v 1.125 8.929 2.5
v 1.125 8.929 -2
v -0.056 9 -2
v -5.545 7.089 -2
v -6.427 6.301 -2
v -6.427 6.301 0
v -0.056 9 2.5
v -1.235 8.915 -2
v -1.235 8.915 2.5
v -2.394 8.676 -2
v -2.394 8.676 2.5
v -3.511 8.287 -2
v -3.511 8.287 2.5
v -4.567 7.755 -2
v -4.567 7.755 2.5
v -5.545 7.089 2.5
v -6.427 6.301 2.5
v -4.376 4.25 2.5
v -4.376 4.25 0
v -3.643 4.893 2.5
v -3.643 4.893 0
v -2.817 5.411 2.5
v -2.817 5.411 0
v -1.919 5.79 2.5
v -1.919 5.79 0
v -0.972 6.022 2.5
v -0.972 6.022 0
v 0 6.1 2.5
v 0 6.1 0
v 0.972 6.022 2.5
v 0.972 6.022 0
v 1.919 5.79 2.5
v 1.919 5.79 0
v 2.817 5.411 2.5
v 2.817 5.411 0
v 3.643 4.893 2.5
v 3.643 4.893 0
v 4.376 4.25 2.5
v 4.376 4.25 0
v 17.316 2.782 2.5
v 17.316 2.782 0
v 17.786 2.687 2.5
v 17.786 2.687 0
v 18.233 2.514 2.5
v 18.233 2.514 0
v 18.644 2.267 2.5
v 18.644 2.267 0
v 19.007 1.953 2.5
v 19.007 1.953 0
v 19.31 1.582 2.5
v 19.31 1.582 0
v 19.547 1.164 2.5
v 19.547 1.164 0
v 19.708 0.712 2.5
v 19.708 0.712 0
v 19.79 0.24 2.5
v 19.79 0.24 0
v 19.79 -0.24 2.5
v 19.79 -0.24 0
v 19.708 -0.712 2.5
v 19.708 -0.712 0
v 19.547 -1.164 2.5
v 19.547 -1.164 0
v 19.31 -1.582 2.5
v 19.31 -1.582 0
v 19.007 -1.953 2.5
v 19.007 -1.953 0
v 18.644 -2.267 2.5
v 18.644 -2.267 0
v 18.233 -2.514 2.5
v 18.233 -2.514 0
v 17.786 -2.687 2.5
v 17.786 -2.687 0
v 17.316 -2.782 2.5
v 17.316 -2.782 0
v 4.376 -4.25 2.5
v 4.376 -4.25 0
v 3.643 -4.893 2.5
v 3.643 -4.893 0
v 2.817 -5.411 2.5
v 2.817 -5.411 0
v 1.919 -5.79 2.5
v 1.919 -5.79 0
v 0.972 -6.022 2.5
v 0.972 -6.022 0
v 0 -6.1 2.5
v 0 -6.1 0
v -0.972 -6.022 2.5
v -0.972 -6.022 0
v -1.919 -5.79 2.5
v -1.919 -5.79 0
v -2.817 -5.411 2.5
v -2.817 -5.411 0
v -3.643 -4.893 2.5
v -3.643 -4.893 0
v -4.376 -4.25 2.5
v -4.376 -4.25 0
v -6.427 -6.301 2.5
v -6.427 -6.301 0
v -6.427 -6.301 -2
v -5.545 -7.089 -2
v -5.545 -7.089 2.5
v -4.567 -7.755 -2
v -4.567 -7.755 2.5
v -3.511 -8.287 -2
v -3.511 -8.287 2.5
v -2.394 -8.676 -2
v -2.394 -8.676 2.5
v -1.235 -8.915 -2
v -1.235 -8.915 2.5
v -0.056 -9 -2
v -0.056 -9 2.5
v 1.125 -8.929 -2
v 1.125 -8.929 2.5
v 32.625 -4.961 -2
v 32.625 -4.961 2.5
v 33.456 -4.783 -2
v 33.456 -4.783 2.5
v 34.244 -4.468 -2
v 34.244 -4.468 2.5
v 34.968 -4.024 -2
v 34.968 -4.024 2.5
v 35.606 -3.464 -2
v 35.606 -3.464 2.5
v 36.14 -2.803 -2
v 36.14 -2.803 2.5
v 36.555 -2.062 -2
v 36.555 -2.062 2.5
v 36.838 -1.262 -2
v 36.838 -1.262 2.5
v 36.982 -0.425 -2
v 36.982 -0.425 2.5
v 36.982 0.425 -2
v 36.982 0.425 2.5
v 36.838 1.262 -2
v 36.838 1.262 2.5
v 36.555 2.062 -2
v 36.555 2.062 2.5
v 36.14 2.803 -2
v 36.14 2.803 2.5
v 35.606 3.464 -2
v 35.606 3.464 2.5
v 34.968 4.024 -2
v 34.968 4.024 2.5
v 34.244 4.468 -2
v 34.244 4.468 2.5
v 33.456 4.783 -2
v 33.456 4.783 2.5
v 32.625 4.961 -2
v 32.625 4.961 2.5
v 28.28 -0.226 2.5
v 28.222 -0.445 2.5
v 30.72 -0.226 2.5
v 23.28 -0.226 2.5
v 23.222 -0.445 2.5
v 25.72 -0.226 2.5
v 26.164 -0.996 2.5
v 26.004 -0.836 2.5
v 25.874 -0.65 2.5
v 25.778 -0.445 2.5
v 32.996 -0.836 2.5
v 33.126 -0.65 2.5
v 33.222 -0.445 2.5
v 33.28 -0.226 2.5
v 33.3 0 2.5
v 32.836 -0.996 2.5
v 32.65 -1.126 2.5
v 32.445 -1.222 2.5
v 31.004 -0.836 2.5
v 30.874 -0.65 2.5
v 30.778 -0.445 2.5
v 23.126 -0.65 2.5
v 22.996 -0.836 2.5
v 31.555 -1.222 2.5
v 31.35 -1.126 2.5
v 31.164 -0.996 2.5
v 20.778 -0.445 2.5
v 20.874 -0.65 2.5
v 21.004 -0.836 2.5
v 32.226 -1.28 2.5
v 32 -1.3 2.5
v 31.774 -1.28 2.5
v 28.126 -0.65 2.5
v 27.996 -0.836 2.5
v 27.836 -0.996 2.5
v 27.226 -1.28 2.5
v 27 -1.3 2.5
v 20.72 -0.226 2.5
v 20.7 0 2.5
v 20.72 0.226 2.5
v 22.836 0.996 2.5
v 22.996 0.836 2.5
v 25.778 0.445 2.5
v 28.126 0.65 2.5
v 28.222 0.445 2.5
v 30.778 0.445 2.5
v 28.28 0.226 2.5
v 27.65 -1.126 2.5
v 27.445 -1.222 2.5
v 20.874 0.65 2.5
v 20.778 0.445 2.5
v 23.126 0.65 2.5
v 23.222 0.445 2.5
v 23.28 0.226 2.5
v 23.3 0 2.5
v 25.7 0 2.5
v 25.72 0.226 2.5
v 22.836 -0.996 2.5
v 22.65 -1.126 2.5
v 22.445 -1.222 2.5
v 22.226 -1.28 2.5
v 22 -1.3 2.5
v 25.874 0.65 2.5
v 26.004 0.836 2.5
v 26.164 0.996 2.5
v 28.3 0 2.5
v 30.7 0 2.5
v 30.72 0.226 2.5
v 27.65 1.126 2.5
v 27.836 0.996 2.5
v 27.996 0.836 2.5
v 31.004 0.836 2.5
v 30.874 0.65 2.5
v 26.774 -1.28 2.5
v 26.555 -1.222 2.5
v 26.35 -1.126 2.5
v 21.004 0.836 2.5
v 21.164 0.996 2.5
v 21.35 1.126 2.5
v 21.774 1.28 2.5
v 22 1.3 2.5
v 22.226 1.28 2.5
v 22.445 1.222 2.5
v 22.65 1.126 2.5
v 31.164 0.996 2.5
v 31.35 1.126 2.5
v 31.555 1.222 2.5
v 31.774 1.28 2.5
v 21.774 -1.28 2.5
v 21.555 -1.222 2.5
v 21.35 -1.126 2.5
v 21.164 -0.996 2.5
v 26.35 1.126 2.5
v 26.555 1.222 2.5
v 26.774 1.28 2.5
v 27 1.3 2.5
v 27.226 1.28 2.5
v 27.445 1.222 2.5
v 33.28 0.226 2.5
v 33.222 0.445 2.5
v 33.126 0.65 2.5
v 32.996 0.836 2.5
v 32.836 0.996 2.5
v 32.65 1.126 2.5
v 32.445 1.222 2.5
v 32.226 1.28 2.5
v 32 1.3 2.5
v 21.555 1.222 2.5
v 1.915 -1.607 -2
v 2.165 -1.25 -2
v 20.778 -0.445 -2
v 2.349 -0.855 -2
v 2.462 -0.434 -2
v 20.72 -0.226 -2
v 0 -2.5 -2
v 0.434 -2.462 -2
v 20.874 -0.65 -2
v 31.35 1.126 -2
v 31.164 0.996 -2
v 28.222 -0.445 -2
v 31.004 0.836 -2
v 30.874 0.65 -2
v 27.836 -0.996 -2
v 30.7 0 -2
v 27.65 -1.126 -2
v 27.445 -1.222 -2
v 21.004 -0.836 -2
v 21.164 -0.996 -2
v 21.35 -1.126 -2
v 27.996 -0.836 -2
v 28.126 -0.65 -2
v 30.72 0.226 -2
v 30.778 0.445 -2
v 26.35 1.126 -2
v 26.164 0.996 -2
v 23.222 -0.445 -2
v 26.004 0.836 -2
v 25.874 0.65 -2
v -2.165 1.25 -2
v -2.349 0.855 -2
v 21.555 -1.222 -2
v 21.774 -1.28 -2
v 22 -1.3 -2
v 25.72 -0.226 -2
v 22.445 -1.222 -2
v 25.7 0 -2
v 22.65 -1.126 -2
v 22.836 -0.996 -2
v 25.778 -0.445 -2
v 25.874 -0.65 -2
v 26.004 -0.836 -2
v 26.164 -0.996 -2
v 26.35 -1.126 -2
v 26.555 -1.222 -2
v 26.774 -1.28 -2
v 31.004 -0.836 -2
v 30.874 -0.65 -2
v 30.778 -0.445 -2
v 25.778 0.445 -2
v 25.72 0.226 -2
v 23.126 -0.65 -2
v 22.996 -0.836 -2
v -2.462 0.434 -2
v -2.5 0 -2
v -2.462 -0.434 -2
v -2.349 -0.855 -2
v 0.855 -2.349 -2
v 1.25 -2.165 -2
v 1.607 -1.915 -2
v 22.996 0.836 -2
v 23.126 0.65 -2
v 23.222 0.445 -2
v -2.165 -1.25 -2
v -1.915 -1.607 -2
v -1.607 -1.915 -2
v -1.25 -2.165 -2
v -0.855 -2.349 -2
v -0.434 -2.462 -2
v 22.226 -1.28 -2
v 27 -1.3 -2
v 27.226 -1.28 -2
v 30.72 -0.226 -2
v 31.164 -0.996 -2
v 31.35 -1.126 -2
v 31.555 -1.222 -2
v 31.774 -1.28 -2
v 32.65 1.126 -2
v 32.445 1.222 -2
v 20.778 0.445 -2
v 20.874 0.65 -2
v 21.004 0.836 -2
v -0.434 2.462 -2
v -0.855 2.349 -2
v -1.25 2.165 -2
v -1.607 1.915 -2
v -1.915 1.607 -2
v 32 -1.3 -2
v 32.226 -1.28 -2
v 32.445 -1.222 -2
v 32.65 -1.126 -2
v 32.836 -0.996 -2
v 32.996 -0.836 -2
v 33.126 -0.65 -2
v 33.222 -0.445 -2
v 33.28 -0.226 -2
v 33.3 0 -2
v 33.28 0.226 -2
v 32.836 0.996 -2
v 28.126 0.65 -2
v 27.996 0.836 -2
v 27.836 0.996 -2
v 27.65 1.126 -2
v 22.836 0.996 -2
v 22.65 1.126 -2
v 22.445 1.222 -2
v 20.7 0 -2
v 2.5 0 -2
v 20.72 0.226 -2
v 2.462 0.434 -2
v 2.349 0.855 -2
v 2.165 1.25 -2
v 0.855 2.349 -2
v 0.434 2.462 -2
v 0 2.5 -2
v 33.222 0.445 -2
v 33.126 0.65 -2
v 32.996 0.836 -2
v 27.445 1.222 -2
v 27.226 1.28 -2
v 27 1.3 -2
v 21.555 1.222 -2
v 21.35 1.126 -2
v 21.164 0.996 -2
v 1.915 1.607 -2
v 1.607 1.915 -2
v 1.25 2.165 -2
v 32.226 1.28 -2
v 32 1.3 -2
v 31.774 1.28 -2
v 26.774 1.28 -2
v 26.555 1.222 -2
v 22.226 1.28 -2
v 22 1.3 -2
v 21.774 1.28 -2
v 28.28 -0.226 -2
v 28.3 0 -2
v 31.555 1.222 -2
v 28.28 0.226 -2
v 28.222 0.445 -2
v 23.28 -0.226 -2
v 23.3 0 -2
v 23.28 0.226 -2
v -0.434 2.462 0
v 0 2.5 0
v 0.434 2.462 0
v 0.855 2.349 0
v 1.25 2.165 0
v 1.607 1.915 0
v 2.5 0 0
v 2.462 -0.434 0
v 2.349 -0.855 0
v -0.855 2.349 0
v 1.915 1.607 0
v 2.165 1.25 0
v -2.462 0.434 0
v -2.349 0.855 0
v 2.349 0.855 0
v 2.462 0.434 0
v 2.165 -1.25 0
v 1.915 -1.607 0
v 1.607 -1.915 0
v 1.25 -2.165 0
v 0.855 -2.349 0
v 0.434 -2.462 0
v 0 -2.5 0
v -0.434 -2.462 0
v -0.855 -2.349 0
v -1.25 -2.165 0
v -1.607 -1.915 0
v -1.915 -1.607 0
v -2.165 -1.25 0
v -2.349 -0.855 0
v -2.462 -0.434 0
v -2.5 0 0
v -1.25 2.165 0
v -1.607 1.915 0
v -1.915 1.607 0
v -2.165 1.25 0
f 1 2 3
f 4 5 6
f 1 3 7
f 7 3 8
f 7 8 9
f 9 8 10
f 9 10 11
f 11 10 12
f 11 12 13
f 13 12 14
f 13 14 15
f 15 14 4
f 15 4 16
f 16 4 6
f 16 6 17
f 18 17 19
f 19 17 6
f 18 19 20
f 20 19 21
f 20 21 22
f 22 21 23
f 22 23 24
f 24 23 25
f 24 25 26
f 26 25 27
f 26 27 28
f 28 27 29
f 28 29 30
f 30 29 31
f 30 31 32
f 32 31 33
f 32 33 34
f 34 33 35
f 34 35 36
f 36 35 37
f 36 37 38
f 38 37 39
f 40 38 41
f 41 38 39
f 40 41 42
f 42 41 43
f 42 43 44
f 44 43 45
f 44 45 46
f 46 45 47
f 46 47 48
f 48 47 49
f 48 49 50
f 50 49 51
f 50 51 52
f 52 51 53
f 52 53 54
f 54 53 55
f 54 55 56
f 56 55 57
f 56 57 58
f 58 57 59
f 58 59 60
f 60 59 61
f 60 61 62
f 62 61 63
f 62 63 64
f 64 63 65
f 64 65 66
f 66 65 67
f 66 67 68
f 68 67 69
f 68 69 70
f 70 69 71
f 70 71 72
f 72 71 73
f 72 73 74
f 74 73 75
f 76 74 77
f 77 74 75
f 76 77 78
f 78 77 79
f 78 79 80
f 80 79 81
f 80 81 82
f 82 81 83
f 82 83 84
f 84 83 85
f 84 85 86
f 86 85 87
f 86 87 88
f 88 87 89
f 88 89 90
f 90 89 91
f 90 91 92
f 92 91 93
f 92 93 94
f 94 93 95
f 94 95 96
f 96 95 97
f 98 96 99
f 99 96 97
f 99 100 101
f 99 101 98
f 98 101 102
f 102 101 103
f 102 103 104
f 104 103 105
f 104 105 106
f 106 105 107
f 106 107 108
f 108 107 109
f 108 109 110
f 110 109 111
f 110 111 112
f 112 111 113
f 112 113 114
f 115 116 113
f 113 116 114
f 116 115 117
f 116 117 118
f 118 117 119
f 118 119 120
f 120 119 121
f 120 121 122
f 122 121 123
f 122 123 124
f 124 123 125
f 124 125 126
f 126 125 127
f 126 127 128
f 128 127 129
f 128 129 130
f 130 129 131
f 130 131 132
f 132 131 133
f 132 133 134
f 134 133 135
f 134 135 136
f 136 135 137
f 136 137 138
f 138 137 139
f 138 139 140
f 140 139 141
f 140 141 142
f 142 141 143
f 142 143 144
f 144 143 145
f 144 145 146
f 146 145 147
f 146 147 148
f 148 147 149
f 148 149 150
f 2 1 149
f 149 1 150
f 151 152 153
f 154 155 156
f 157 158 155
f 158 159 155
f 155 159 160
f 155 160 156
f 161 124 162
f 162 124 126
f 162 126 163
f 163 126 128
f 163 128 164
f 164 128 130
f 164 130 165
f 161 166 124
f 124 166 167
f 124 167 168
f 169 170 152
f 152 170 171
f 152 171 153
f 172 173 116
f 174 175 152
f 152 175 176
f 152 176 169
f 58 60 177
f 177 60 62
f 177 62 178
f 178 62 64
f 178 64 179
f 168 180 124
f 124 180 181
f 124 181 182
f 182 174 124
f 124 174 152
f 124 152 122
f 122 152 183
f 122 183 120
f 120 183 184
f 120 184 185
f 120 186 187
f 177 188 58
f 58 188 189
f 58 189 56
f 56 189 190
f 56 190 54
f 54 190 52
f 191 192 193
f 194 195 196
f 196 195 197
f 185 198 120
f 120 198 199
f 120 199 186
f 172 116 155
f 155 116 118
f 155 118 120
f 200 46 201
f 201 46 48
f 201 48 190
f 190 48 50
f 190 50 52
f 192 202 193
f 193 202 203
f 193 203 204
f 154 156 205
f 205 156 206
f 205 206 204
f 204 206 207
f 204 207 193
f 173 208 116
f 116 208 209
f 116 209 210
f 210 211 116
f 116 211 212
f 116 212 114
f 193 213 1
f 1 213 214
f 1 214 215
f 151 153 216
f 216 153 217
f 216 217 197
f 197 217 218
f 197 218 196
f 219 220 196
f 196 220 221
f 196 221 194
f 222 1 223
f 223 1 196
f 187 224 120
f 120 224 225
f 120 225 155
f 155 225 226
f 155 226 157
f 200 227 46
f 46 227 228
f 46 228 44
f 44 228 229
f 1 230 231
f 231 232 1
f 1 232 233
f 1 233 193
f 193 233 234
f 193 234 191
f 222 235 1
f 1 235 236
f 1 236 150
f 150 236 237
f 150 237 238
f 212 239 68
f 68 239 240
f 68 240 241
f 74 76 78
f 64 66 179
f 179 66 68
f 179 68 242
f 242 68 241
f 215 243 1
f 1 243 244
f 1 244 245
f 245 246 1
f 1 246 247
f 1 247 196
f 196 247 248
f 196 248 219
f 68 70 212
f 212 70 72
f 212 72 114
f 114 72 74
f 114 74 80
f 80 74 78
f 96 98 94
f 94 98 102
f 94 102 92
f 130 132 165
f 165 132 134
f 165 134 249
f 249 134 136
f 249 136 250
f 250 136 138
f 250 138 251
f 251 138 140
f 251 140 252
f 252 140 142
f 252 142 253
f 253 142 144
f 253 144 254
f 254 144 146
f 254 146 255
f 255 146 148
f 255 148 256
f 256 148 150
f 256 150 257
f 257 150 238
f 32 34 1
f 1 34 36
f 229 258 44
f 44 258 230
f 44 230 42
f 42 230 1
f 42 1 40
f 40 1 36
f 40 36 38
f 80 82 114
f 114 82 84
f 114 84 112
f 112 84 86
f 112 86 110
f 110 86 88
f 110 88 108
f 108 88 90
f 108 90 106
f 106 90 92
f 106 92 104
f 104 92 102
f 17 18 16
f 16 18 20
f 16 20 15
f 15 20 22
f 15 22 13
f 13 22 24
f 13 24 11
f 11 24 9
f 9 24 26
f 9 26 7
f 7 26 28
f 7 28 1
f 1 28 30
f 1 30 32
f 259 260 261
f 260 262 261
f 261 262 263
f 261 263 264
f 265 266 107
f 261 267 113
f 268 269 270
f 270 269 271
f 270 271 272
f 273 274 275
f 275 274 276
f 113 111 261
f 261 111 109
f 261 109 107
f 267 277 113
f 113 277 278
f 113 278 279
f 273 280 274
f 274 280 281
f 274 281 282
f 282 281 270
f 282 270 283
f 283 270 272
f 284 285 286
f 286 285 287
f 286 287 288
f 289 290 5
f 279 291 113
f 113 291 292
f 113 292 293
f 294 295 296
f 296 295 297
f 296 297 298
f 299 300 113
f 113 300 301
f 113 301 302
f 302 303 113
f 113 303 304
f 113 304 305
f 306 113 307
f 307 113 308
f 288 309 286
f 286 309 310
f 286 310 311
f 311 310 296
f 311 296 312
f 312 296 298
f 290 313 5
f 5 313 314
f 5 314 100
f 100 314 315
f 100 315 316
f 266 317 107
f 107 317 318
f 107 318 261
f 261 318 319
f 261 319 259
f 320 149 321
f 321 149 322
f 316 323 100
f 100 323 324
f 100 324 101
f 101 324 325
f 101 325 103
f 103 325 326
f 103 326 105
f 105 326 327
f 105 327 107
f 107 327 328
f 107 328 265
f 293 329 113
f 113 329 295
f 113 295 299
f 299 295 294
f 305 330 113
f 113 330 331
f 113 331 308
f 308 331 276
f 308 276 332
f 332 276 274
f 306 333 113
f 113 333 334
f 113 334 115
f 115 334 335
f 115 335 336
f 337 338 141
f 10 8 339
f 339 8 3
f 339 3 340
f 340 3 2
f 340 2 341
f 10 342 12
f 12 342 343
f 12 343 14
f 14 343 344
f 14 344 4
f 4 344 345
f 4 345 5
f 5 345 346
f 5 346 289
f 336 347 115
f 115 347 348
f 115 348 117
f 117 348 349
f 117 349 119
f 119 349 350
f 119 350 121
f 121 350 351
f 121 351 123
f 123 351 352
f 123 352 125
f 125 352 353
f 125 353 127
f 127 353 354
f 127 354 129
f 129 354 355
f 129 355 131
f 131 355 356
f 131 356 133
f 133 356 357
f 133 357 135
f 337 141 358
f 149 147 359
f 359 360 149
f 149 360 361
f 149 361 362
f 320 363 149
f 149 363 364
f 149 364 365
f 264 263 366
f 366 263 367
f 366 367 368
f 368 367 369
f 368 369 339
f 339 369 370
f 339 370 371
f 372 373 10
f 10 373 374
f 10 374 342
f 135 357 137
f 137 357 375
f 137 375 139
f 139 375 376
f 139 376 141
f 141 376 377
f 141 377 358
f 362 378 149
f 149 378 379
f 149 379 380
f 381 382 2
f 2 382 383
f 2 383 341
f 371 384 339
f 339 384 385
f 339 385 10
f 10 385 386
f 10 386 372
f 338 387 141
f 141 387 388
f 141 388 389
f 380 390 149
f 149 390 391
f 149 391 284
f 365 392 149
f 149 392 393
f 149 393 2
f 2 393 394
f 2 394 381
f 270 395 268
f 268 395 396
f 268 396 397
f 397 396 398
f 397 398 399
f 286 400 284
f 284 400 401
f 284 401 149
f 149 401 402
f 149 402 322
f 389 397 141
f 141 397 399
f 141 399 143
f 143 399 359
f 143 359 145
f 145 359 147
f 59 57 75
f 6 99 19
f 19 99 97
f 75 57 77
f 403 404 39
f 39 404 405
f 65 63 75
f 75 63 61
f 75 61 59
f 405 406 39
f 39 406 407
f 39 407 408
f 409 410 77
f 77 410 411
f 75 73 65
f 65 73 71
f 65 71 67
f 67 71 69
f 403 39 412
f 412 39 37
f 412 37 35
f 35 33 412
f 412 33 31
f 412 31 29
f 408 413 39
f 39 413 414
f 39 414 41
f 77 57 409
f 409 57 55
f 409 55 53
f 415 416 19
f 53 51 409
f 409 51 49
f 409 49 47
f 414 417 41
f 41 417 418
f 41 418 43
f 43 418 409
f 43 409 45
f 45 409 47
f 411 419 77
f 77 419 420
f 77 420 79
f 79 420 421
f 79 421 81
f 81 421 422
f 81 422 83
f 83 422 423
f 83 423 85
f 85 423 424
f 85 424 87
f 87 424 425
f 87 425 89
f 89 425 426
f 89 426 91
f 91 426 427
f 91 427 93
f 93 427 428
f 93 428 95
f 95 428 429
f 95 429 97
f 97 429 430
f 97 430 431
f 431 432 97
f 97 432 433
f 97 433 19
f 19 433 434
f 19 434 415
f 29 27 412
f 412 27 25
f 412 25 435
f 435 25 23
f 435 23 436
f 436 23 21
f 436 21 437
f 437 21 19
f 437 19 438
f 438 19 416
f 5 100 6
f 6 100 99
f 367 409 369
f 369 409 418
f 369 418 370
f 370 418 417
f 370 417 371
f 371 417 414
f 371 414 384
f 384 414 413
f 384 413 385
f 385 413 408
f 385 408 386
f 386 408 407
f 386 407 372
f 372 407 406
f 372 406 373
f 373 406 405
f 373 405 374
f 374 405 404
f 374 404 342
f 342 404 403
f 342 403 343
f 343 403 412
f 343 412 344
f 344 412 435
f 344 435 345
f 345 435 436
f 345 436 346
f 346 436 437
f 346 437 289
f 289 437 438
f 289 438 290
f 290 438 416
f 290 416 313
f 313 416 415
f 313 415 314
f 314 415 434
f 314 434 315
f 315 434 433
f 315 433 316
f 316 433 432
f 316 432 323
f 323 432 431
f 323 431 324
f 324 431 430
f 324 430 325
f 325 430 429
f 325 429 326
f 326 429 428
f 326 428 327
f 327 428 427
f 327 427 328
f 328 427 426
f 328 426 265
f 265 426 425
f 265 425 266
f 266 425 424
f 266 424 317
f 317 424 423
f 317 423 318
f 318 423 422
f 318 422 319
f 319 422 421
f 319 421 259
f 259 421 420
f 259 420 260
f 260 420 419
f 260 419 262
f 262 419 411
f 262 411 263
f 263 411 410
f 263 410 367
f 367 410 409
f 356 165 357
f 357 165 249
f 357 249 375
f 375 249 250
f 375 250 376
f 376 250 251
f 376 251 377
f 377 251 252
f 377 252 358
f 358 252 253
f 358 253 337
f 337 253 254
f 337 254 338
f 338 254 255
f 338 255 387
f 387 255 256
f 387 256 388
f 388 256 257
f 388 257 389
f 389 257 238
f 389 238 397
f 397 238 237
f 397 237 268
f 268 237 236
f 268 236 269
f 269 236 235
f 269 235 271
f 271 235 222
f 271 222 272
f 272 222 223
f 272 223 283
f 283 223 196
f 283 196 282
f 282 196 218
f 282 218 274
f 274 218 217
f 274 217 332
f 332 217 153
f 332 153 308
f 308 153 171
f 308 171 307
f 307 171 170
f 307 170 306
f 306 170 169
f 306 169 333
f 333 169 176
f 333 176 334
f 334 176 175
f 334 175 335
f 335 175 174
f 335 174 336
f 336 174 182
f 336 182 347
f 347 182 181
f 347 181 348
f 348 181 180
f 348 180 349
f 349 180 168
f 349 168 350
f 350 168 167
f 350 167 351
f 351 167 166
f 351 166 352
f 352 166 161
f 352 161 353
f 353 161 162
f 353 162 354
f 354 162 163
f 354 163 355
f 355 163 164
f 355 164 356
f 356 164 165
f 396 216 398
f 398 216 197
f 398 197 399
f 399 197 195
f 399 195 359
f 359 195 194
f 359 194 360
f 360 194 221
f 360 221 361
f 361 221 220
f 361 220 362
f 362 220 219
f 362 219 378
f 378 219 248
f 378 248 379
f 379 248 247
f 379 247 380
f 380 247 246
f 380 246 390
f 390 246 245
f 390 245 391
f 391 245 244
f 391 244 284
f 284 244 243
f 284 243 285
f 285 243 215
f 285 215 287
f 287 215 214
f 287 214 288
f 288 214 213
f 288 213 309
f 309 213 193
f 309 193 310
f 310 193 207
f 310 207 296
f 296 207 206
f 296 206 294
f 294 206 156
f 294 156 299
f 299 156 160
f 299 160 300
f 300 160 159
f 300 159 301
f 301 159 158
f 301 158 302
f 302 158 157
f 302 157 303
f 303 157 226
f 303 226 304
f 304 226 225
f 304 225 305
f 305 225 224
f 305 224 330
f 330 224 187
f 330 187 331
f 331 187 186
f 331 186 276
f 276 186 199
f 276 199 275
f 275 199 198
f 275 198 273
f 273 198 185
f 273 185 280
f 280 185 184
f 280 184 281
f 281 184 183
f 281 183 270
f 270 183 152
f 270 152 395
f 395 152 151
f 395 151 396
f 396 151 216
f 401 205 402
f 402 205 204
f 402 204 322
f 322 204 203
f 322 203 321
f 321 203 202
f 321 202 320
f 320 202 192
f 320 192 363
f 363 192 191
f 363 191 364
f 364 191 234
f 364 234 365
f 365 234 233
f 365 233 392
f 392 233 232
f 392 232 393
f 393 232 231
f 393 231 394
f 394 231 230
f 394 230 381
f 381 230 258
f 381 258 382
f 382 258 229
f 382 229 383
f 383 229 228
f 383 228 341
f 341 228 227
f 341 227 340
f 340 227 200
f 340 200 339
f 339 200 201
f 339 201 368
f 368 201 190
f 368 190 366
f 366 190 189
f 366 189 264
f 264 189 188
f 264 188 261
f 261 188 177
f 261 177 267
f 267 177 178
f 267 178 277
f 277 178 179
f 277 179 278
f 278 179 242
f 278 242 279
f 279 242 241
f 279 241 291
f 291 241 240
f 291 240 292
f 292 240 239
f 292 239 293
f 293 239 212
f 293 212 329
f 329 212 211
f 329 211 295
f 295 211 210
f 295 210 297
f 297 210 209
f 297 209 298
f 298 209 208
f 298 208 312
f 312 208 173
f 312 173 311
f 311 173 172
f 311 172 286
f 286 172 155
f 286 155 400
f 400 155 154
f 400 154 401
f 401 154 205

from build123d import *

# Parameters (mm, degrees)
MAIN_DEPTH            = 2.5
ORIGINALBRACKET_START = 2
ESQUISSE2_R           = 2.5
ORIGINALBRACKET_DEPTH = 2
ESQUISSE3_R           = 1.3
FIXINGHOLE_DEPTH      = 39.34383914


with BuildPart() as part:
    # Esquisse1 → Main (new body)
    with BuildSketch(Plane.XY):
        with BuildLine():
            Line((-4.375785644, 4.25), (-6.426543071, 6.300757427))
            ThreePointArc((-6.426543071, 6.300757427), (-2.958723408, 8.499762102), (1.125, 8.929410675))
            Line((1.125, 8.929410675), (32.625, 4.960783708))
            ThreePointArc((32.625, 4.960783708), (37, 0), (32.625, -4.960783708))
            Line((32.625, -4.960783708), (1.125, -8.929410675))
            ThreePointArc((1.125, -8.929410675), (-2.958723408, -8.499762102), (-6.426543071, -6.300757427))
            Line((-6.426543071, -6.300757427), (-4.375785644, -4.25))
            ThreePointArc((-4.375785644, -4.25), (0, -6.1), (4.375785644, -4.25))
            Line((4.375785644, -4.25), (17.31559729, -2.78215714))
            ThreePointArc((17.31559729, -2.78215714), (19.8, 0), (17.31559729, 2.78215714))
            Line((17.31559729, 2.78215714), (4.375785644, 4.25))
            ThreePointArc((4.375785644, 4.25), (0, 6.1), (-4.375785644, 4.25))
        make_face()
    extrude(amount=MAIN_DEPTH)

    # Esquisse2 → OriginalBracket (add)
    with BuildSketch(Plane(origin=(0, 0, 0), x_dir=(-1, 0, 0), z_dir=(0, 0, -1)).offset(ORIGINALBRACKET_START)):
        with BuildLine():
            Line((-1.125, -8.929410675), (-32.625, -4.960783708))
            ThreePointArc((-32.625, -4.960783708), (-37, 0), (-32.625, 4.960783708))
            Line((-32.625, 4.960783708), (-1.125, 8.929410675))
            ThreePointArc((-1.125, 8.929410675), (2.958723408, 8.499762102), (6.426543071, 6.300757427))
            Line((6.426543071, 6.300757427), (6.426543071, -6.300757427))
            ThreePointArc((6.426543071, -6.300757427), (2.958723408, -8.499762102), (-1.125, -8.929410675))
        make_face()
        Circle(ESQUISSE2_R, mode=Mode.SUBTRACT)
    extrude(amount=-ORIGINALBRACKET_DEPTH)

    # Esquisse3 → FixingHole (cut, through all)
    with BuildSketch(Plane.XY.offset(2.5)):
        with Locations((32, 0)):
            Circle(ESQUISSE3_R)
        with Locations((22, 0)):
            Circle(ESQUISSE3_R)
        with Locations((27, 0)):
            Circle(ESQUISSE3_R)
    extrude(amount=-FIXINGHOLE_DEPTH, mode=Mode.SUBTRACT)


solid = part.part
